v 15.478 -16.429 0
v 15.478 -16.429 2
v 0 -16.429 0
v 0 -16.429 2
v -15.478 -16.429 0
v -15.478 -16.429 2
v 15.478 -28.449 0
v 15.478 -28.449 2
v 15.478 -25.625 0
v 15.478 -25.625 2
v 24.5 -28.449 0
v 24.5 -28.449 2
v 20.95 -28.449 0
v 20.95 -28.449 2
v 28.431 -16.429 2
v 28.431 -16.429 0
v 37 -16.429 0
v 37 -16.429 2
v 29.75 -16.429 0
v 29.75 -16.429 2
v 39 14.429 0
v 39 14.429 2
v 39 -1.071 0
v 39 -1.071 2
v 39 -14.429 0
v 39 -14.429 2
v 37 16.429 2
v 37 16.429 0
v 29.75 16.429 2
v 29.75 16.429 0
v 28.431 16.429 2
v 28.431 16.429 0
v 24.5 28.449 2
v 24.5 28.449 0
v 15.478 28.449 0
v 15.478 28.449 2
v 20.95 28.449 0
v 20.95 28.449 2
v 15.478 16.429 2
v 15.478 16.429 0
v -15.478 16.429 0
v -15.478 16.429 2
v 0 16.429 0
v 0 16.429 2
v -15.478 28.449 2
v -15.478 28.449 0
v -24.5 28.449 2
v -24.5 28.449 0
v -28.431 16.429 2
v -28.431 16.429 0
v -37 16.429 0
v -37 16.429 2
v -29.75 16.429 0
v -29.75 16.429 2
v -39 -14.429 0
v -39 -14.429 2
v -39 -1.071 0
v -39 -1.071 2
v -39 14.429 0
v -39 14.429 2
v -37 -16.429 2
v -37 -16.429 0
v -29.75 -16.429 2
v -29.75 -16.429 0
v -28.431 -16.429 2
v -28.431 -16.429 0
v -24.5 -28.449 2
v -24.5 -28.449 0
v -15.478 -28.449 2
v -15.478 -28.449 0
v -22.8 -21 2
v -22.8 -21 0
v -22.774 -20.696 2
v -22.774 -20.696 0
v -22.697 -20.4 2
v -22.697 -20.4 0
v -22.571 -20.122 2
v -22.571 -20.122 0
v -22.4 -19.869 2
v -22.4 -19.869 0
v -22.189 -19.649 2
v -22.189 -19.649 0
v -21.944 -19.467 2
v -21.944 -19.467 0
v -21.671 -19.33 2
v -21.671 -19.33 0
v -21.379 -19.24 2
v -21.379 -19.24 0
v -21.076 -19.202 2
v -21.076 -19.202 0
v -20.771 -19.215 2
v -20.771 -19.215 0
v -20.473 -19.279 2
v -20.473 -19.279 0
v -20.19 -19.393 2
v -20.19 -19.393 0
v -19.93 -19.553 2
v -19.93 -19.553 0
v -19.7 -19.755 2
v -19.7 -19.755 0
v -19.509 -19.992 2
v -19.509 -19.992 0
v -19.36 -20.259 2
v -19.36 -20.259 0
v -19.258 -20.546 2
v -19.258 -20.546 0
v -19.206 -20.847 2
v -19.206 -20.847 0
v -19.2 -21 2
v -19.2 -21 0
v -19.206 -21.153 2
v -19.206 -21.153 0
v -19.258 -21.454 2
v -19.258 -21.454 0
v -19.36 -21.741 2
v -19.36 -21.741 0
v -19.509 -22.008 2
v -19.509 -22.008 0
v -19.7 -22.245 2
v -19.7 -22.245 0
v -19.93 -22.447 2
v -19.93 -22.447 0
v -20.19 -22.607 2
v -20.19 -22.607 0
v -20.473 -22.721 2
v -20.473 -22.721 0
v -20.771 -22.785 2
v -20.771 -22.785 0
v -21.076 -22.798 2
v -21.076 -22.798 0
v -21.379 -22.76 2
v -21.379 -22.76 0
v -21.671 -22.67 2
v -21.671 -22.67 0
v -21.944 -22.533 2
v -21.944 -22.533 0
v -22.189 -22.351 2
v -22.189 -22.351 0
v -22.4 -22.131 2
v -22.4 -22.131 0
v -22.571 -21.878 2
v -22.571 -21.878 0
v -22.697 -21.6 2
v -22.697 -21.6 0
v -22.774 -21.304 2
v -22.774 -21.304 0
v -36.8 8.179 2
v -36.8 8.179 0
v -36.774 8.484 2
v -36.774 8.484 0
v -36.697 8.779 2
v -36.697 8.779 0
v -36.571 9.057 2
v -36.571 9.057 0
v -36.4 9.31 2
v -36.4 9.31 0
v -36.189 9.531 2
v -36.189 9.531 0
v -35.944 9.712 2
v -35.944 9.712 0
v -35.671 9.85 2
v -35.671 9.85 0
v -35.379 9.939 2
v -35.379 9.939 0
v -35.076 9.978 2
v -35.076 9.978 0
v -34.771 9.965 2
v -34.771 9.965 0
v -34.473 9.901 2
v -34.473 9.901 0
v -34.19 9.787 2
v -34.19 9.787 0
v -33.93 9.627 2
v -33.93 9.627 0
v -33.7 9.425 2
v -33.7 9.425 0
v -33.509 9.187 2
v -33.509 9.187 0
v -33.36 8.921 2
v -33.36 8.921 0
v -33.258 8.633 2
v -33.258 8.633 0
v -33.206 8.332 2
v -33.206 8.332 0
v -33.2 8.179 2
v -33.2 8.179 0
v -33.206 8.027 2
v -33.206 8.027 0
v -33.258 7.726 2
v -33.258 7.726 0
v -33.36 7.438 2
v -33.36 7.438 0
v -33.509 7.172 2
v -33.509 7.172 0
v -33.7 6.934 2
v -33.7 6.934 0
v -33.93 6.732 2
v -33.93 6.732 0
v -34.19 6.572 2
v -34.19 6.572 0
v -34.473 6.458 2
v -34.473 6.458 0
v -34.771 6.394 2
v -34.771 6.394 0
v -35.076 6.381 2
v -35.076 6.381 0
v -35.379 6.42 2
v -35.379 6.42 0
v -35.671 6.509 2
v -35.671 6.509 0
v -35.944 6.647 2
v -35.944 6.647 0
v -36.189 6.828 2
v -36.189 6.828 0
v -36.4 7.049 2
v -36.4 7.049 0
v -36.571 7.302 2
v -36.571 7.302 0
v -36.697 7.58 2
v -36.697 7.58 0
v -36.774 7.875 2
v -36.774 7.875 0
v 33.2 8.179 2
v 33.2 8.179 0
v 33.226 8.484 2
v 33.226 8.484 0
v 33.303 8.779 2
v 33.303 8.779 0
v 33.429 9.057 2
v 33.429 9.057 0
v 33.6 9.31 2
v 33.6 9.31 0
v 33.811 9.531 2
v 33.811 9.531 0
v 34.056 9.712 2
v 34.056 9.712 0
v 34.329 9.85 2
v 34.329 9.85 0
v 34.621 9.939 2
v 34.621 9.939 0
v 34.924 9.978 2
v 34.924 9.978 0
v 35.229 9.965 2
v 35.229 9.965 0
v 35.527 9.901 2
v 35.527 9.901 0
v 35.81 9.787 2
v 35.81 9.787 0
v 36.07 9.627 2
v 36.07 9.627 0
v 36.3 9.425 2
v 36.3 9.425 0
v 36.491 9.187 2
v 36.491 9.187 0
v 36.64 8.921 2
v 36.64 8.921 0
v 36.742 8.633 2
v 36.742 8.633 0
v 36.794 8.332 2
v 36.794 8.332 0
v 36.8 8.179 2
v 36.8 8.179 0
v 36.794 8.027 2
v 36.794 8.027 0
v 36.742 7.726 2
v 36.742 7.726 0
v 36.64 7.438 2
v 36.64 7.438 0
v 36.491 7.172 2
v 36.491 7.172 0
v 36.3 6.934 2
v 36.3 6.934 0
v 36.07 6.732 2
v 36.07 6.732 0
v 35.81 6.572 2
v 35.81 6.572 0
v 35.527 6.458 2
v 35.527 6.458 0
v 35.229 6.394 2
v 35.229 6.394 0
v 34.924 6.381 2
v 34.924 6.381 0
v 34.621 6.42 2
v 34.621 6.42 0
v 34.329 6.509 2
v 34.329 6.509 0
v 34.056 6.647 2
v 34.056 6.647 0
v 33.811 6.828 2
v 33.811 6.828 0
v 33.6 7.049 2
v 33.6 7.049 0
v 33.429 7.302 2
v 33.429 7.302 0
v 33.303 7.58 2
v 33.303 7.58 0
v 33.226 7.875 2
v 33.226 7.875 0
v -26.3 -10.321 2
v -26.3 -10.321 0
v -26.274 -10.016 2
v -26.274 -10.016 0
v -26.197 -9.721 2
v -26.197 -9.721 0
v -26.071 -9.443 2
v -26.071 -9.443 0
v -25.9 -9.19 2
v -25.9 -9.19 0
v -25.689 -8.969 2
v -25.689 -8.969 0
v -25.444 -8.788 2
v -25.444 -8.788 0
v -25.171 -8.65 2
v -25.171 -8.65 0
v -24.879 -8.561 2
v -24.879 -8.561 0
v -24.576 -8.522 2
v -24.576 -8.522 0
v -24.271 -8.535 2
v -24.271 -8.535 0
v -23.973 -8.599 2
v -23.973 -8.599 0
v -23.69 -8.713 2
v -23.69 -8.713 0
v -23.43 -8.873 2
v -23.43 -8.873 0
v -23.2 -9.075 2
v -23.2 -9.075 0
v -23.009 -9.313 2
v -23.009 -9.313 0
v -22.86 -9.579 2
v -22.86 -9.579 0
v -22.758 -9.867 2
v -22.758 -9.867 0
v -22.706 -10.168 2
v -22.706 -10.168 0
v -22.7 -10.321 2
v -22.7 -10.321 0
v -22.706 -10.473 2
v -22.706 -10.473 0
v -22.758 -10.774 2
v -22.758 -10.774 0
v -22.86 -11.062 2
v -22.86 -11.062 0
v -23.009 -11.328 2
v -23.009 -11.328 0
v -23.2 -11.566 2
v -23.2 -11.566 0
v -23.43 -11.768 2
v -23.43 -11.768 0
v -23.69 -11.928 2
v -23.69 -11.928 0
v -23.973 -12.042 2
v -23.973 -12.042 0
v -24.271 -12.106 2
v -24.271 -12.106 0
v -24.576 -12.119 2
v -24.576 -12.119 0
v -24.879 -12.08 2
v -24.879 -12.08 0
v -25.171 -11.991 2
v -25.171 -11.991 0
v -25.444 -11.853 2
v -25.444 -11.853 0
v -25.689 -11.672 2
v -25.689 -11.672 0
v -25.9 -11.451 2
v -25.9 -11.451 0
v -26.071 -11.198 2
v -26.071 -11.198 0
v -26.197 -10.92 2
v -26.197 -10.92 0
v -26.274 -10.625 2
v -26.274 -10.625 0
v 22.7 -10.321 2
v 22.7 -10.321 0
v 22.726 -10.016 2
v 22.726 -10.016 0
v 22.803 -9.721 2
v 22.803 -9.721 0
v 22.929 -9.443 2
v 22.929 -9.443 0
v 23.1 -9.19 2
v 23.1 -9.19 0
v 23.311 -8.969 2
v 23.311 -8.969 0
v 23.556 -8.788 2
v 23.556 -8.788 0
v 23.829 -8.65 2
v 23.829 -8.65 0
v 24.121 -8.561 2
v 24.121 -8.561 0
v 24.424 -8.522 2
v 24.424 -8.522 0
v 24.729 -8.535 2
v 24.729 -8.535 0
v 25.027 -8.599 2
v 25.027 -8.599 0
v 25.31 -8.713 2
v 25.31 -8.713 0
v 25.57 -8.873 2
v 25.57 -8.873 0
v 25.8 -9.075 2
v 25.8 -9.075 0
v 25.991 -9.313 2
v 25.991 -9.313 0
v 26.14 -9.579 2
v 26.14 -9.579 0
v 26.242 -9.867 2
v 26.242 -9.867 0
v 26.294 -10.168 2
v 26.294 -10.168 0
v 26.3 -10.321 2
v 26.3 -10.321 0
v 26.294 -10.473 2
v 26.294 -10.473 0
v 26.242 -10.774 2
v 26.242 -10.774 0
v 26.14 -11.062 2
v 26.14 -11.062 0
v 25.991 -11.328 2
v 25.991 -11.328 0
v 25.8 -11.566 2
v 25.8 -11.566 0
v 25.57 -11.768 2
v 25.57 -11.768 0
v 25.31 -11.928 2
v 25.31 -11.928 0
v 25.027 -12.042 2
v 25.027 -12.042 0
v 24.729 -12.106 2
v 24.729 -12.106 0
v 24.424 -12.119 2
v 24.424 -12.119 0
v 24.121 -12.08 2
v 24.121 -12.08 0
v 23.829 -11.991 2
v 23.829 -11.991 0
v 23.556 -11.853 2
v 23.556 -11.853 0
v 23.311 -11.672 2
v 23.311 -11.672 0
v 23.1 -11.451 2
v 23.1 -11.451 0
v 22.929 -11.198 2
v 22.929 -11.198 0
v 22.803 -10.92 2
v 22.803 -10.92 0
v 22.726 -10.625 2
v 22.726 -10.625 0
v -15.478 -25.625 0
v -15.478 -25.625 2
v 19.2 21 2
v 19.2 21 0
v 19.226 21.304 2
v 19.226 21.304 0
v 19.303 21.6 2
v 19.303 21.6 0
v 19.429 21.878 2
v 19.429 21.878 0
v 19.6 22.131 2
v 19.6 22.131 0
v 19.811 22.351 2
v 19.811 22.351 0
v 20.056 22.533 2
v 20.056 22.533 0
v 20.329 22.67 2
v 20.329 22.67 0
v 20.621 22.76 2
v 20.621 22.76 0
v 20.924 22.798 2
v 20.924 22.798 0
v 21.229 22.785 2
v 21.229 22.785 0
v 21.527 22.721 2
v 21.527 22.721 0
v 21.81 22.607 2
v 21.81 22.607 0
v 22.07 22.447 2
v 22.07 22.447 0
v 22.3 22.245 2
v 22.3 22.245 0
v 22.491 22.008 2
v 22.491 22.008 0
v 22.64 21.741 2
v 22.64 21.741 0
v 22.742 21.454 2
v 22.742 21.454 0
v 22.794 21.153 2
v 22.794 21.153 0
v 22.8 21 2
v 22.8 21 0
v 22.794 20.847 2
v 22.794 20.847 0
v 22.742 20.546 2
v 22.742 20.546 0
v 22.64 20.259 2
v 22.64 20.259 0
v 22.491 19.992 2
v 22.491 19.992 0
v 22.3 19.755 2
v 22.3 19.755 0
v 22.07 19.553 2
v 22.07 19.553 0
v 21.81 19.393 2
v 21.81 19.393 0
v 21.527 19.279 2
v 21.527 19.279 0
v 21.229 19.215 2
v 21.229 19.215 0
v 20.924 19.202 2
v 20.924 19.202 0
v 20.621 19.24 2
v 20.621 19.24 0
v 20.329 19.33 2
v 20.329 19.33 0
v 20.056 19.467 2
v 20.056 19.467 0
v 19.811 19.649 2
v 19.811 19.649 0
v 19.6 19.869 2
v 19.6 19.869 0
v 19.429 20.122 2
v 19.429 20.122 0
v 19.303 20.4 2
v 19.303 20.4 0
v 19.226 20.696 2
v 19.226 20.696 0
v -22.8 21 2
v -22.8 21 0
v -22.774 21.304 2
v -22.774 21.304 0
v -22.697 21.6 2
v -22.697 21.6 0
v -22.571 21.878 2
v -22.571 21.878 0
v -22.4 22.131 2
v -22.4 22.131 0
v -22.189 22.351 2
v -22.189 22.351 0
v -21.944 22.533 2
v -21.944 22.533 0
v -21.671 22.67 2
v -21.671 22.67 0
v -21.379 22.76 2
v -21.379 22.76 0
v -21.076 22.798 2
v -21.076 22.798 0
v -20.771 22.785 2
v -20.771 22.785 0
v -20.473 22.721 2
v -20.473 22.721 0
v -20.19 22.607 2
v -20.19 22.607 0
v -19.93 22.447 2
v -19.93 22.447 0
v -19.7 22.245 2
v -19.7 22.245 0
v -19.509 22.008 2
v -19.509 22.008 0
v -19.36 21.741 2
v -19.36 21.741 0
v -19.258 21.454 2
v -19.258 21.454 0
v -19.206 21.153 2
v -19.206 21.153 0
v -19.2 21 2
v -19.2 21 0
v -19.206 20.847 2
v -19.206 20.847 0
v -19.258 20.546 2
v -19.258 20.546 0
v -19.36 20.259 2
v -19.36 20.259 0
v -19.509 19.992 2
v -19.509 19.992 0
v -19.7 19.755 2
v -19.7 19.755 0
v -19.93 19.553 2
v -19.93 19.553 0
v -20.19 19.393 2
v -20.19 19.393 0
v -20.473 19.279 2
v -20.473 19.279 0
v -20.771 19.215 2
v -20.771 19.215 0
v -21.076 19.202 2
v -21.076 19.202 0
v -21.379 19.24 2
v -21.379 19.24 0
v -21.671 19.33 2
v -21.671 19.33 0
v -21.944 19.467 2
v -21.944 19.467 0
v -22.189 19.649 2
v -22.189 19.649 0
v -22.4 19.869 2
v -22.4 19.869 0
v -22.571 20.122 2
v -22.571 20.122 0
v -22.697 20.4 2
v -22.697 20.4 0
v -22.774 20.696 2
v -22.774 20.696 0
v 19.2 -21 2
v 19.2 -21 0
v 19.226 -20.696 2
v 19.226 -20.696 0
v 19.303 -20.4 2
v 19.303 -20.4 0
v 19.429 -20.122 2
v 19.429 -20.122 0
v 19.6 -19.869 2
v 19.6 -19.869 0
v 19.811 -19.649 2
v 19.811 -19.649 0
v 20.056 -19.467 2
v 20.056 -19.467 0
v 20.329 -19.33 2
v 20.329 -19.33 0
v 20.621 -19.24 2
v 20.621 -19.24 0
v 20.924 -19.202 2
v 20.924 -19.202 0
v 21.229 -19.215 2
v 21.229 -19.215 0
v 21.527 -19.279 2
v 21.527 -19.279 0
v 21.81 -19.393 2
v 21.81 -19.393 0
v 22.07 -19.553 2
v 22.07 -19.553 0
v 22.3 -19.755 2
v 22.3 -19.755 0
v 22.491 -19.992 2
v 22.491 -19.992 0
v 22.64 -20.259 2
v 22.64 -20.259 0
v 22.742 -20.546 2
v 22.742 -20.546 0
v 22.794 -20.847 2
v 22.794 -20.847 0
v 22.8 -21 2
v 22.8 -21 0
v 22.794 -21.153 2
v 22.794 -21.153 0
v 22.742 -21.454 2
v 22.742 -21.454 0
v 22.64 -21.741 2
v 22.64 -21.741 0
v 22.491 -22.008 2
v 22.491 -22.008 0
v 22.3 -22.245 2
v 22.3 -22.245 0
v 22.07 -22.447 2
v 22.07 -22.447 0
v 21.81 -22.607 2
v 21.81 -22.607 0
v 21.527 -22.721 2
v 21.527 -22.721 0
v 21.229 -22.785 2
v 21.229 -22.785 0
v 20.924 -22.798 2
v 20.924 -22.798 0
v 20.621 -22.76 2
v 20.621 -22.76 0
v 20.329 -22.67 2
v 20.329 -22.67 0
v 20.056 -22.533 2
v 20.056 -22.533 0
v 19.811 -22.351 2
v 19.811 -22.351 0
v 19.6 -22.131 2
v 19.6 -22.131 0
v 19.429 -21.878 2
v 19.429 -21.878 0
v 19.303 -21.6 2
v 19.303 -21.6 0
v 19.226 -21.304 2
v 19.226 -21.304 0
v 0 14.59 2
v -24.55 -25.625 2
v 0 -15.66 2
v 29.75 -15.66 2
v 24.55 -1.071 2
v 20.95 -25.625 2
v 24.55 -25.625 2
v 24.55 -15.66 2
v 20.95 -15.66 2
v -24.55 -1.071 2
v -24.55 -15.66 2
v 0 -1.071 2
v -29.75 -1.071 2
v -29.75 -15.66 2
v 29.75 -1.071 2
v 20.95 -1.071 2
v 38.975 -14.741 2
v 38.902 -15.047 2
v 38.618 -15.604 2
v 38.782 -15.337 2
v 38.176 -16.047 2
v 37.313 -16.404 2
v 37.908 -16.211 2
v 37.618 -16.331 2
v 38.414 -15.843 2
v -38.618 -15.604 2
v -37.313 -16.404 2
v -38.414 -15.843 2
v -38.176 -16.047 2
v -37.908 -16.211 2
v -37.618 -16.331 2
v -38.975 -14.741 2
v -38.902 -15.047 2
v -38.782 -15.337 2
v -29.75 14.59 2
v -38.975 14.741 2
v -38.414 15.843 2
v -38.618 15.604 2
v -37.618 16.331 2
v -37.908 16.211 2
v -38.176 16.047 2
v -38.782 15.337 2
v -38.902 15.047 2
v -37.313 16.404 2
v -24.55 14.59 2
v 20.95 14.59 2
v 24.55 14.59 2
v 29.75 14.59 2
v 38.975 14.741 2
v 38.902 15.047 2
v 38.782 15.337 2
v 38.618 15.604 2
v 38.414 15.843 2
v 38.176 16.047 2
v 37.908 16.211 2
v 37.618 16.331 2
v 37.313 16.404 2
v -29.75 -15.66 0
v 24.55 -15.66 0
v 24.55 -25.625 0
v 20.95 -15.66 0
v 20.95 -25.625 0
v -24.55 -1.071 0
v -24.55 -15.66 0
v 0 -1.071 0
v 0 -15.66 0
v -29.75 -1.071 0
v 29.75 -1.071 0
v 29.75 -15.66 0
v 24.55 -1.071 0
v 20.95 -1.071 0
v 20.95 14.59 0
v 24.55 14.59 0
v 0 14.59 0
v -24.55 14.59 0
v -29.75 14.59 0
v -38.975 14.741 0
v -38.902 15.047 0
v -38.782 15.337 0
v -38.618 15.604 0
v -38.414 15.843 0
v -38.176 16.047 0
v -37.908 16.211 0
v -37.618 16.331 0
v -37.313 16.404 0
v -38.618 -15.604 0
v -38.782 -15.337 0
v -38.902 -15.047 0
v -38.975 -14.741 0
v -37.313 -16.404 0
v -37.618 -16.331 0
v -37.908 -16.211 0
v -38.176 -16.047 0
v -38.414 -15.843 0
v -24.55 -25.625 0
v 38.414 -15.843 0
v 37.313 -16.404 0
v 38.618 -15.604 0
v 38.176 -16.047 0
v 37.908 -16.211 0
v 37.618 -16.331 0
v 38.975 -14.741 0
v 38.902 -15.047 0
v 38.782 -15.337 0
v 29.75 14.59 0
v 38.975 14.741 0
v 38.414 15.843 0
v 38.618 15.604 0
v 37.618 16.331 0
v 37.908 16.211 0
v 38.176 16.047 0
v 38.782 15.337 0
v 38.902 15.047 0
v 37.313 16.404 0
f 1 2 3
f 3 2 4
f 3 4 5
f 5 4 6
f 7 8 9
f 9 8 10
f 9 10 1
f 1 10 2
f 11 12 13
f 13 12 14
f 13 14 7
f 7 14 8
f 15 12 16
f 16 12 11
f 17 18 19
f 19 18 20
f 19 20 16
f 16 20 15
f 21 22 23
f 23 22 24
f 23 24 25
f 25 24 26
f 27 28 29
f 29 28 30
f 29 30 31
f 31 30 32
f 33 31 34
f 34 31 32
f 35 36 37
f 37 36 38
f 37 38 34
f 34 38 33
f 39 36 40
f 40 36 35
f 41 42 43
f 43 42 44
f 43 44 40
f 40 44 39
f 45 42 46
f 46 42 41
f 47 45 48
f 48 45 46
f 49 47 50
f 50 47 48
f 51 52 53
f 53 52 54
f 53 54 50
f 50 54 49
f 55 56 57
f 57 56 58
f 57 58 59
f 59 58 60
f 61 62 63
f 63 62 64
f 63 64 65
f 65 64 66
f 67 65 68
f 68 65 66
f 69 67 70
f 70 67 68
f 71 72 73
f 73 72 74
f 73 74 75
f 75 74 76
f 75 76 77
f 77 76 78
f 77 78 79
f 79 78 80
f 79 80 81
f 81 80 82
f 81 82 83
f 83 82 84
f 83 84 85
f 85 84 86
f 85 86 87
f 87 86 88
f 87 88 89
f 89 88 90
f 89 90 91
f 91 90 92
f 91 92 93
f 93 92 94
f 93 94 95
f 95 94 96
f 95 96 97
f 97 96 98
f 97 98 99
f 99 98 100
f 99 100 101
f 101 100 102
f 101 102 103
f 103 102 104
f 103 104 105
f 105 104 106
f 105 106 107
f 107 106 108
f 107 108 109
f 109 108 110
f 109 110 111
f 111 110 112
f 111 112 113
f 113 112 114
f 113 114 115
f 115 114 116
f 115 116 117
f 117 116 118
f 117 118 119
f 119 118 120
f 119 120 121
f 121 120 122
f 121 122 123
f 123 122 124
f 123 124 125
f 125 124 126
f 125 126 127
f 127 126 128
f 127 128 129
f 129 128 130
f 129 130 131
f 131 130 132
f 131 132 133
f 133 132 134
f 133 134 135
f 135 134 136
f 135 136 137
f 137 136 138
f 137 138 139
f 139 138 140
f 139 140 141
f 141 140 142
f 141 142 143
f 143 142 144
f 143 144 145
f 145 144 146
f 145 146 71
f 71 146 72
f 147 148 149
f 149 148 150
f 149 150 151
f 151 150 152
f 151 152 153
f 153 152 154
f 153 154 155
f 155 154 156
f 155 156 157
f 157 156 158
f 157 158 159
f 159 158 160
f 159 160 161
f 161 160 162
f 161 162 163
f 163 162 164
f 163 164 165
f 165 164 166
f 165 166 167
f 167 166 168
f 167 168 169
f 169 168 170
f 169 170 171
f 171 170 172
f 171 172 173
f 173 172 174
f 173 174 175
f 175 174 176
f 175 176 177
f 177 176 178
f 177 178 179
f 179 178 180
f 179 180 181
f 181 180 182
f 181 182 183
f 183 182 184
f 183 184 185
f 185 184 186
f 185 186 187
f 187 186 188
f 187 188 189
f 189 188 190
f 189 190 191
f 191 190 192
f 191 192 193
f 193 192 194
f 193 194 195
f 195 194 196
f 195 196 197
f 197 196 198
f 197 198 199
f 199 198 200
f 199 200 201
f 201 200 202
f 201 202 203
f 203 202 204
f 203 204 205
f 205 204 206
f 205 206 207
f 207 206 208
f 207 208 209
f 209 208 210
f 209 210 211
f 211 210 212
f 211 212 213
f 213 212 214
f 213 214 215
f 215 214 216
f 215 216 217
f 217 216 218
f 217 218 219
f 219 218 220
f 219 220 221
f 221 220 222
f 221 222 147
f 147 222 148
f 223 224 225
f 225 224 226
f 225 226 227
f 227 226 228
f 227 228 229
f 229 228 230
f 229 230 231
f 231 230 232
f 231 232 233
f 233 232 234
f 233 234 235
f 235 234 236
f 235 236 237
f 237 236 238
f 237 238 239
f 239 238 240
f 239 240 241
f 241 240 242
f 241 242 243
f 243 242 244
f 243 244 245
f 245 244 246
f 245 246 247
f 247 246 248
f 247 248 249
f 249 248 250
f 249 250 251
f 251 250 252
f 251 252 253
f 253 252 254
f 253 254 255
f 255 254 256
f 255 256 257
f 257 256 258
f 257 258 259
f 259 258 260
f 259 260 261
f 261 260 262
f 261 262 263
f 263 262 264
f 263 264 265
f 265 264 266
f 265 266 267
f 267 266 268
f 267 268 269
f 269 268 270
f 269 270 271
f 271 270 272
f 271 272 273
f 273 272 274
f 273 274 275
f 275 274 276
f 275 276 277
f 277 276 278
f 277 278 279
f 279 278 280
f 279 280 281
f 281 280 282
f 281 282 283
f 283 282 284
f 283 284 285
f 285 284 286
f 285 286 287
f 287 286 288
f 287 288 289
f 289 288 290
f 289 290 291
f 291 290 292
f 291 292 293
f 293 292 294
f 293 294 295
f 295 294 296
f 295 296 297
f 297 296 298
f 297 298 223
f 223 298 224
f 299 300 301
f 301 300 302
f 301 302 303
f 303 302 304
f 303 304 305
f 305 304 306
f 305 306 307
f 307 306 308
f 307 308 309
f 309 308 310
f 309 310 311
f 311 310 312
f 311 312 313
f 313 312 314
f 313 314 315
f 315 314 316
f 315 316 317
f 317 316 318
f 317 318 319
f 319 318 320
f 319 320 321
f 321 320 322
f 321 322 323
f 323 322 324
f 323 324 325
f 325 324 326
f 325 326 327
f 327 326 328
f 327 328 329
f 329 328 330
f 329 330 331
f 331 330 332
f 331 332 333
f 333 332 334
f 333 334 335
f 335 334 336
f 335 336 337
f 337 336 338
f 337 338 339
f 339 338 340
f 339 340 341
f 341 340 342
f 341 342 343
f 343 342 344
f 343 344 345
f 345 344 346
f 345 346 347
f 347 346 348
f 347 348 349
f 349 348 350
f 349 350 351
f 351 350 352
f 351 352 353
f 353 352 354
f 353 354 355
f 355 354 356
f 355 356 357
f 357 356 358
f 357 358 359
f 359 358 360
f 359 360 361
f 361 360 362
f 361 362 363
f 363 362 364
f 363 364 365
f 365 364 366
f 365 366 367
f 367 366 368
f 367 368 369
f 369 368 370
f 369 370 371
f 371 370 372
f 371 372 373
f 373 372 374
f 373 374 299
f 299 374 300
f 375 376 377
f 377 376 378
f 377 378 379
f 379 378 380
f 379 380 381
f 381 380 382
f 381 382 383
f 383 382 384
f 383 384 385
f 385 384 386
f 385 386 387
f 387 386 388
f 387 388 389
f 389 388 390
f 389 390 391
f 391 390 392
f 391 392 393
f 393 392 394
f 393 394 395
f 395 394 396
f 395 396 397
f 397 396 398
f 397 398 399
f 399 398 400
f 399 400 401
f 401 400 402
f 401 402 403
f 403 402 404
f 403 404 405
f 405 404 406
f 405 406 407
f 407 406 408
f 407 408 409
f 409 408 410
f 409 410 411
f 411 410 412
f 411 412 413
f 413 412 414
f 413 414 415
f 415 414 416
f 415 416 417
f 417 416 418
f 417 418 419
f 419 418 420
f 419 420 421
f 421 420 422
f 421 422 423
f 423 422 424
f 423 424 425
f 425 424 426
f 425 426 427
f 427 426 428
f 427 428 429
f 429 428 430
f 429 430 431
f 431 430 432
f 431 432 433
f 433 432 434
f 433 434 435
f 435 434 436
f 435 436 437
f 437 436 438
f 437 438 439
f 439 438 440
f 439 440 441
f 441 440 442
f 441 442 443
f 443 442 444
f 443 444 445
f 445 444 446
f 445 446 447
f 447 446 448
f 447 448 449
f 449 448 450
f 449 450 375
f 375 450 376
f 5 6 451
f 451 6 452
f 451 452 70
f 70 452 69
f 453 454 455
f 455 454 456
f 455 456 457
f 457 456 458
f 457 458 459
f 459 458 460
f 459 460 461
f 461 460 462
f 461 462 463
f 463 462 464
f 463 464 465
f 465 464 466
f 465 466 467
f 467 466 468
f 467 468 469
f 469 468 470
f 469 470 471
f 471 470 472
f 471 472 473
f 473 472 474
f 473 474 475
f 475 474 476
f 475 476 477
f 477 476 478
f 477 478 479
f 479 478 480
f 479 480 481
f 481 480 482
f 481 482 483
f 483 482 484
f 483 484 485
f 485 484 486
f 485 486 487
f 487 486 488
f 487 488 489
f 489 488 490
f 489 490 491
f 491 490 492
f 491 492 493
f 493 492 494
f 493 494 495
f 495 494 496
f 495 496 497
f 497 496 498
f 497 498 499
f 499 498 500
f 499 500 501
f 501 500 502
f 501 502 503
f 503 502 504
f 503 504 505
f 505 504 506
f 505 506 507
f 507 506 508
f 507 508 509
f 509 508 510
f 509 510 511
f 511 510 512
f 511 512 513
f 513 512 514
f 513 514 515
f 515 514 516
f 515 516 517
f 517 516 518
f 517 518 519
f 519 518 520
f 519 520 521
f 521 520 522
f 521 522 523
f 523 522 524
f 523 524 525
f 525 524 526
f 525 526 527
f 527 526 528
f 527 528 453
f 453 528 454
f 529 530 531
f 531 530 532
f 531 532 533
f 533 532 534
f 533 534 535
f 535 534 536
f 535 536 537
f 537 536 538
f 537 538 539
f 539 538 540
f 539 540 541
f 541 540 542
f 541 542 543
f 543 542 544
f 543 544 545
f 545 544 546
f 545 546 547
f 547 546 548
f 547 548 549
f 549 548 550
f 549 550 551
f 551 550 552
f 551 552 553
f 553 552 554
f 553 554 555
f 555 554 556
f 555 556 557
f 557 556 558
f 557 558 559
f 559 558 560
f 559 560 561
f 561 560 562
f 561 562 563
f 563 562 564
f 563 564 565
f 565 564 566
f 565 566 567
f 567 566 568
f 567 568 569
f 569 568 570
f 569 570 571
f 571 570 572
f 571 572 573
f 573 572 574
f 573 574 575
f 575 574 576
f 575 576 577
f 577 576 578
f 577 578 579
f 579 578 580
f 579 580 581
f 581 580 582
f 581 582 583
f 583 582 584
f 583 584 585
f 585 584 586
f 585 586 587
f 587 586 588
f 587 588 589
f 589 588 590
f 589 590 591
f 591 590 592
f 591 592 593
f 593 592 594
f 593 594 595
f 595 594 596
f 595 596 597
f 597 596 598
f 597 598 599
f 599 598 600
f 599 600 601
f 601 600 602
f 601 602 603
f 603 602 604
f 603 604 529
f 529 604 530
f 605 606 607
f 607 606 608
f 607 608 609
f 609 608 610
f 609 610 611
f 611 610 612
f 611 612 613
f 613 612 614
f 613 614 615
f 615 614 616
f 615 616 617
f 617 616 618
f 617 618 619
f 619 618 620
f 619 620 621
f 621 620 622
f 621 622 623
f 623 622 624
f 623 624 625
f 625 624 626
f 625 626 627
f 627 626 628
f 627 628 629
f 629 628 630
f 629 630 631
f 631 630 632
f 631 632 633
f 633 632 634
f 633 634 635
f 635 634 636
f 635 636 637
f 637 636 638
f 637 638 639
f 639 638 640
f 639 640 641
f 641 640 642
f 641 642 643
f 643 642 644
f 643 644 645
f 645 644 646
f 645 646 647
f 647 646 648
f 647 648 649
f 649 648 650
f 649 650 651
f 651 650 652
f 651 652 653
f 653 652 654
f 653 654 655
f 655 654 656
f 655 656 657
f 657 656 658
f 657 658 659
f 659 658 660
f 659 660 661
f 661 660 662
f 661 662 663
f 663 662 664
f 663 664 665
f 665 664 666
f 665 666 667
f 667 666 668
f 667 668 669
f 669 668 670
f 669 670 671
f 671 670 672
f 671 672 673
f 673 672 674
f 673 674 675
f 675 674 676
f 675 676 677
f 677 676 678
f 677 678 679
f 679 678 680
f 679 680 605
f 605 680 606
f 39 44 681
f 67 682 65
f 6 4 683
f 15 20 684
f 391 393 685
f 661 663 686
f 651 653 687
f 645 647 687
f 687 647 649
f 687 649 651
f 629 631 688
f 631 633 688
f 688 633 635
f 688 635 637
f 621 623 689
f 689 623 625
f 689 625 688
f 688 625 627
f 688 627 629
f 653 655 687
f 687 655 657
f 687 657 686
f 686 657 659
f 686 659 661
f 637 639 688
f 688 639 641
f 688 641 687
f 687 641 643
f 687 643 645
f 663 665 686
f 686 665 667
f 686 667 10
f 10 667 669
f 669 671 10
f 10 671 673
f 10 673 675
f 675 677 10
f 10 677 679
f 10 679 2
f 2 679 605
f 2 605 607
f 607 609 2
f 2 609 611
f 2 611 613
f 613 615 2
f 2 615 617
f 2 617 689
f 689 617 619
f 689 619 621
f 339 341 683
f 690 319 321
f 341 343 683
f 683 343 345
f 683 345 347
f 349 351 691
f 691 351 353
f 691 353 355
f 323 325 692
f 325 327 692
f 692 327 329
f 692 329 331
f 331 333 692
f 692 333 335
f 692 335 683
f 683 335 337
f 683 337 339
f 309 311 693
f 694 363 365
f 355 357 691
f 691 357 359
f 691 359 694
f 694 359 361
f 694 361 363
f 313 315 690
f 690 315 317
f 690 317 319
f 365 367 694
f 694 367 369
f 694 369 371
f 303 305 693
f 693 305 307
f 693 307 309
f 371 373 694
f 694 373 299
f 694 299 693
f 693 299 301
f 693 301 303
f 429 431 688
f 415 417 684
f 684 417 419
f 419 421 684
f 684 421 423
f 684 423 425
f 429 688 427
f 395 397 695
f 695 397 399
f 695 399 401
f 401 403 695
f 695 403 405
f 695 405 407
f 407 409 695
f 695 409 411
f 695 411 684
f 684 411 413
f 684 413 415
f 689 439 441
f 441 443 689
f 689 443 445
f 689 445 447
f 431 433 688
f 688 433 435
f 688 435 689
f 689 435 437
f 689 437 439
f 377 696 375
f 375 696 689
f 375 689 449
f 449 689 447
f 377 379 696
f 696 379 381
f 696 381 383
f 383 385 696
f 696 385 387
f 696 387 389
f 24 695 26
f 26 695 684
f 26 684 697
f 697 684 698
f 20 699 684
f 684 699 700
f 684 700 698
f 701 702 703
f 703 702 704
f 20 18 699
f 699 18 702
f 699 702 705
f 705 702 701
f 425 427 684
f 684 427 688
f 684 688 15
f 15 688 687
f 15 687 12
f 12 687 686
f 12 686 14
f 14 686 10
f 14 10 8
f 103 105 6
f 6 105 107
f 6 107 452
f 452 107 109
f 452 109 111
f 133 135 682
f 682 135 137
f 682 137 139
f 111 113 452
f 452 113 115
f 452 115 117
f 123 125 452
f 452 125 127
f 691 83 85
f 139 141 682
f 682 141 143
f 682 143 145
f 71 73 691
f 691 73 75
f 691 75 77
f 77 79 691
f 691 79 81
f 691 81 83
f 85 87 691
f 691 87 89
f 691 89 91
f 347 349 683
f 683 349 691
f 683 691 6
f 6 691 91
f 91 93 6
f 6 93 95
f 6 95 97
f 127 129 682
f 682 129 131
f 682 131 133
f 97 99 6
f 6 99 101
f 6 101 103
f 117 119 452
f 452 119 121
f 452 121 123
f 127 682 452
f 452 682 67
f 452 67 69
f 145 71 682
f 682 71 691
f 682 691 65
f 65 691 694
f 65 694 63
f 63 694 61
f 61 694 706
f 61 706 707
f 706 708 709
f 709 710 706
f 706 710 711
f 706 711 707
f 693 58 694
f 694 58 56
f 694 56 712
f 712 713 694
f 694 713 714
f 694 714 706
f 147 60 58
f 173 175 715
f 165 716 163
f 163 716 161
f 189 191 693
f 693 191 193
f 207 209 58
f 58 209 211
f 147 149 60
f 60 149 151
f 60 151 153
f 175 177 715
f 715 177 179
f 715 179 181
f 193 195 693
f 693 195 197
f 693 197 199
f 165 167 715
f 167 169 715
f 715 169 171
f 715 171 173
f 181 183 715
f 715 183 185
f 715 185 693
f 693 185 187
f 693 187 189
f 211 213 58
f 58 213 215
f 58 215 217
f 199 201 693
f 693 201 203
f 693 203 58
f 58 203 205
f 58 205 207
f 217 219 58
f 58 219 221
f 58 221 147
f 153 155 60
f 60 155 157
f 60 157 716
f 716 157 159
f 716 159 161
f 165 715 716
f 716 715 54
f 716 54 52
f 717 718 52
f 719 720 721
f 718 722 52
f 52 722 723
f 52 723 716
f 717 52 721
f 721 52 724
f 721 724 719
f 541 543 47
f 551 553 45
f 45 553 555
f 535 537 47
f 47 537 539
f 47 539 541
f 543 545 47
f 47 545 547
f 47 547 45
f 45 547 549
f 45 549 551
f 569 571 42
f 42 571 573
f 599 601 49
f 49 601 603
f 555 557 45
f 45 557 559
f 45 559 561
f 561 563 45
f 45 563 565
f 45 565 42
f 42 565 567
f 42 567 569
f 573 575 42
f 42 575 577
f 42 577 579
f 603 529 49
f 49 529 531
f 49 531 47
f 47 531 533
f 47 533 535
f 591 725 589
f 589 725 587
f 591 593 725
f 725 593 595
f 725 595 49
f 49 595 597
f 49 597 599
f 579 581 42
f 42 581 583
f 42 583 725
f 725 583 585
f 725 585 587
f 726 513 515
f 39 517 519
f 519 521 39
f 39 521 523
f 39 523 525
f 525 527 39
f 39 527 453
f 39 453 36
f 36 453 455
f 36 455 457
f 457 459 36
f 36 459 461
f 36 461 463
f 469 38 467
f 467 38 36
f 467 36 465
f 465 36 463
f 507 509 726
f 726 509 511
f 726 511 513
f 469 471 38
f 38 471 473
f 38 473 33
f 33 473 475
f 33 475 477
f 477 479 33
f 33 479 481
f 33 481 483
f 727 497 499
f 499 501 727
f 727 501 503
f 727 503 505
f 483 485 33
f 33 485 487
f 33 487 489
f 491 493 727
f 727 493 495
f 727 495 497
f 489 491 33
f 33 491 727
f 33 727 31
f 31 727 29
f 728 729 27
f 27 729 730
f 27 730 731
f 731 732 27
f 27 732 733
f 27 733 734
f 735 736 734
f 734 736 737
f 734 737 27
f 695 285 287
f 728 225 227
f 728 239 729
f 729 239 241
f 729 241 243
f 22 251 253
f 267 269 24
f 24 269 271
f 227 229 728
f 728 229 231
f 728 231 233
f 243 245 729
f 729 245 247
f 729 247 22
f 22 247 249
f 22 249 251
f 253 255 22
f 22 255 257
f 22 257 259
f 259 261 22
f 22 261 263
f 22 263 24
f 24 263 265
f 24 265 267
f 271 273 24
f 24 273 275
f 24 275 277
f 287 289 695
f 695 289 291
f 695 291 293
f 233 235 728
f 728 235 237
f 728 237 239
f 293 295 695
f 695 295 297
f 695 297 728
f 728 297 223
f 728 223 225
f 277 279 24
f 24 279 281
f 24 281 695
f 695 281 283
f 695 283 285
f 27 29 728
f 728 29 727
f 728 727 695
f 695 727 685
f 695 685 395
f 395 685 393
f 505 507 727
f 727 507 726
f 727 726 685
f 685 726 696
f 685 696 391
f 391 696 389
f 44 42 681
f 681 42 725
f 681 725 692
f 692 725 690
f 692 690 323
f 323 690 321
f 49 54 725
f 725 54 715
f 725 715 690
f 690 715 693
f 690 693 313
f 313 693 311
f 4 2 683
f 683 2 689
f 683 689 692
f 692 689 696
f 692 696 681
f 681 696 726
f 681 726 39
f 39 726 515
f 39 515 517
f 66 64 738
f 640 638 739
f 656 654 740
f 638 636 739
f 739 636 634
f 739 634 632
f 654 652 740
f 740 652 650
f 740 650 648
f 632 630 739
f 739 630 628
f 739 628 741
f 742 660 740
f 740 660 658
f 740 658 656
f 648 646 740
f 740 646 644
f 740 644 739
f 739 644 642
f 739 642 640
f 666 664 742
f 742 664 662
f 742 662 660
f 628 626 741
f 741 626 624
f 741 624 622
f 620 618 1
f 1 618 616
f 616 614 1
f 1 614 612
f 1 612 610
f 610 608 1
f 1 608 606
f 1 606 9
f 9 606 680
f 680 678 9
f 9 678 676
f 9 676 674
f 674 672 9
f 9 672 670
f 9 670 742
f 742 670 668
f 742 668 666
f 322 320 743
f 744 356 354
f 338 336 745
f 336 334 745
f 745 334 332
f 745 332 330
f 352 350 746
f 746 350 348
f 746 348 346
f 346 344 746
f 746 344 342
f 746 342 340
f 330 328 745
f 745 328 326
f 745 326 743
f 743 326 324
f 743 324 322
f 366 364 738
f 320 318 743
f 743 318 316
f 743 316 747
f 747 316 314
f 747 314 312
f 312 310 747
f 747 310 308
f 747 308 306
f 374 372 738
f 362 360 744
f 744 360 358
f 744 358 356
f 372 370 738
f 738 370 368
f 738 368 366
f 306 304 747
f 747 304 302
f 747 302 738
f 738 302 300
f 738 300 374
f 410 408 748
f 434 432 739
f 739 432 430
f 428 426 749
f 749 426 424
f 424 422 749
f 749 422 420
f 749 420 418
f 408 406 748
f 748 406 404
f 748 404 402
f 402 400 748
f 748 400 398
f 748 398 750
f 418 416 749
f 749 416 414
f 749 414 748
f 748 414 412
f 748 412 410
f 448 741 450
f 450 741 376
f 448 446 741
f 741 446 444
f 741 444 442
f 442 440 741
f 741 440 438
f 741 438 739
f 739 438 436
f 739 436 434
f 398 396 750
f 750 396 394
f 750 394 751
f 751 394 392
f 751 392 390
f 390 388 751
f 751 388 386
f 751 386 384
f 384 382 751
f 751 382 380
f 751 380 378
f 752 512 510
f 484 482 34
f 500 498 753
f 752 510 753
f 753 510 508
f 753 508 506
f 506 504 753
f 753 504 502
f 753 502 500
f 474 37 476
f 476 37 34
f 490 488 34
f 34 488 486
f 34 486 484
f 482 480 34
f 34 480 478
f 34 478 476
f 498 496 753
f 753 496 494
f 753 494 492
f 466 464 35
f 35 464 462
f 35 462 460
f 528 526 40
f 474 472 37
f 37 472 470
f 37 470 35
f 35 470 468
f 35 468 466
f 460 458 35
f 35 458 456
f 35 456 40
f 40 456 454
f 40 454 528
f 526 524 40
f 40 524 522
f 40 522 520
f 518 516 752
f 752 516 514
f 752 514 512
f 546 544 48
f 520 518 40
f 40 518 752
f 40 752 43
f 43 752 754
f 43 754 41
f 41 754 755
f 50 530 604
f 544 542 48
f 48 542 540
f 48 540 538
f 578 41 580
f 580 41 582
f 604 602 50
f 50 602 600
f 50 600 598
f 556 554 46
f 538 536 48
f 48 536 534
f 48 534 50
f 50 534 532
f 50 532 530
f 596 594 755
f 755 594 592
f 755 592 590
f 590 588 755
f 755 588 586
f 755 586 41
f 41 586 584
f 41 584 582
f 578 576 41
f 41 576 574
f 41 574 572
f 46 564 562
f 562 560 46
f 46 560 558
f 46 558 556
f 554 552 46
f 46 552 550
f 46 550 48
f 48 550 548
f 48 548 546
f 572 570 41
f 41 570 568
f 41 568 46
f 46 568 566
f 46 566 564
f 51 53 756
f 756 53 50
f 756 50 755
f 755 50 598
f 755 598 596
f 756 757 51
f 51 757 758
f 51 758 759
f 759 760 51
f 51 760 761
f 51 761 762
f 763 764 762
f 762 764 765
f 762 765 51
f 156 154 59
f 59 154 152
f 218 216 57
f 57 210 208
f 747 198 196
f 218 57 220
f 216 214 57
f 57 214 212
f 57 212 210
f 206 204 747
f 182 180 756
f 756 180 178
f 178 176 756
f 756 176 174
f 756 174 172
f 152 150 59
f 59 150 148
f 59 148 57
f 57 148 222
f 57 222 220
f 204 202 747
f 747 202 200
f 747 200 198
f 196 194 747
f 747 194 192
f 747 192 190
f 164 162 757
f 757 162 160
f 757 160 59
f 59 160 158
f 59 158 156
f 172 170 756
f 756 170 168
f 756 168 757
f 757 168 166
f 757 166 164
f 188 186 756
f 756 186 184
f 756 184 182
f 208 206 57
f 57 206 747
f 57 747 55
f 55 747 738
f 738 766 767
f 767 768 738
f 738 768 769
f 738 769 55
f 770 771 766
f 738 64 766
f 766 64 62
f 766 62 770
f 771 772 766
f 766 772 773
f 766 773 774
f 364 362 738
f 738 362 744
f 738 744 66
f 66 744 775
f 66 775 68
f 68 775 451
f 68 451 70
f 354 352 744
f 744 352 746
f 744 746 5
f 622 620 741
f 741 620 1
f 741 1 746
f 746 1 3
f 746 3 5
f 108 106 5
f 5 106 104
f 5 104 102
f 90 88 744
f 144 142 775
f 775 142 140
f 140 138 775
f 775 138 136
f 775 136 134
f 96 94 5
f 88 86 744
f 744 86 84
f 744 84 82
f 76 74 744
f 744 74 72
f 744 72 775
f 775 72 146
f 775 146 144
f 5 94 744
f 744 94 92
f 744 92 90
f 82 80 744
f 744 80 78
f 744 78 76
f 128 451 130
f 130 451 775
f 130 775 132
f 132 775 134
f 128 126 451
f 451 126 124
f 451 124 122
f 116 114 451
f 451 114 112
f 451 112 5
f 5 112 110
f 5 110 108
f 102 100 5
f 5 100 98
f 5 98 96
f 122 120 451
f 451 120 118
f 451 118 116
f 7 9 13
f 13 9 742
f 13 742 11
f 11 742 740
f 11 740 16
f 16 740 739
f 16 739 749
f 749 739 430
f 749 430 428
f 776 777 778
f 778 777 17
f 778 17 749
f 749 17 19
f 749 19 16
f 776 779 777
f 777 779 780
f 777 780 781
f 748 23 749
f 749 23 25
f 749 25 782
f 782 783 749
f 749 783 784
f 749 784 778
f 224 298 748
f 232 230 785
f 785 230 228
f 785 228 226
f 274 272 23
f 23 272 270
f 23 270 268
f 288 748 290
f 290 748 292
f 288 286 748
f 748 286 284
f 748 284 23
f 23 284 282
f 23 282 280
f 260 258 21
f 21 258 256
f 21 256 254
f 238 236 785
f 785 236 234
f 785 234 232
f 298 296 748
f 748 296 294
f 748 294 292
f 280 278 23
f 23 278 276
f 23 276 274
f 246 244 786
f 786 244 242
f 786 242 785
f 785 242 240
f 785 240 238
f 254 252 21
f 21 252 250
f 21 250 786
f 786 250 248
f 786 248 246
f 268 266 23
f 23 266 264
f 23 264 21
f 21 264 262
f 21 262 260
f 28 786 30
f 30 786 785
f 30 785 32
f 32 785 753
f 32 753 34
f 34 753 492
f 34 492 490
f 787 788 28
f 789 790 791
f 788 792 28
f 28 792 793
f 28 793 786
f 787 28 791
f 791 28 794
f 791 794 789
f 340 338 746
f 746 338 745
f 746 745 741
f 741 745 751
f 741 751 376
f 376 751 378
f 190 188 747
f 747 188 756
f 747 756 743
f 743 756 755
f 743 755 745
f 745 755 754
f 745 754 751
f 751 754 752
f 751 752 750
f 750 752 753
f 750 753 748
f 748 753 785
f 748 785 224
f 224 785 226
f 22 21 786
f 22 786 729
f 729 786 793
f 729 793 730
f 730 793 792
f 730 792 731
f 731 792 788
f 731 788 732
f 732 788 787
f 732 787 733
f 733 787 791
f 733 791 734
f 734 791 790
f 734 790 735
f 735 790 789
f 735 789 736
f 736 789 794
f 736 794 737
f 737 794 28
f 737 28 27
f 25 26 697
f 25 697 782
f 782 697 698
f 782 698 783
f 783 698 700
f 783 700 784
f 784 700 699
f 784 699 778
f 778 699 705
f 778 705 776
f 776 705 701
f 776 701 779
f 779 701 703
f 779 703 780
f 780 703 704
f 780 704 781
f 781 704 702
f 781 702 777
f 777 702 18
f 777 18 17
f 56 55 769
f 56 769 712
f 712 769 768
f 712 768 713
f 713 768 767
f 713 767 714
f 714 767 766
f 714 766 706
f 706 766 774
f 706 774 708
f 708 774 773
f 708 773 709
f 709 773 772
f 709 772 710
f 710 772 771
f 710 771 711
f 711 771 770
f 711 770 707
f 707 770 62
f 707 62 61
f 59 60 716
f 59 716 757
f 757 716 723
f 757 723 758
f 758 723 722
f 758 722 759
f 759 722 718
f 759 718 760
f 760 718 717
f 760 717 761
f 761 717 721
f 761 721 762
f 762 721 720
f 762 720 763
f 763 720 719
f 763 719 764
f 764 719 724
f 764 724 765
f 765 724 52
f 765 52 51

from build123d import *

# Parameters (mm, degrees)
SKETCH_1_R      = 1.8
EXTRUDE_1_DEPTH = 2
FILLET_1_R      = 2


with BuildPart() as part:
    # 草图1 → 凸台-拉伸1 (new body)
    with BuildSketch(Plane.XY):
        Polygon((15.478457886, -16.428571429), (-15.478457886, -16.428571429), (-15.478457886, -28.449015282), (-24.5, -28.449015282), (-28.430563732, -16.428571429), (-39, -16.428571429), (-39, 16.428571429), (-28.430563732, 16.428571429), (-24.5, 28.449015282), (-15.478457886, 28.449015282), (-15.478457886, 16.428571429), (15.478457886, 16.428571429), (15.478457886, 28.449015282), (24.5, 28.449015282), (28.430563732, 16.428571429), (39, 16.428571429), (39, -16.428571429), (28.430563732, -16.428571429), (24.5, -28.449015282), (15.478457886, -28.449015282), align=None)
        with Locations((-21, 21)):
            Circle(SKETCH_1_R, mode=Mode.SUBTRACT)
        with Locations((21, 21)):
            Circle(SKETCH_1_R, mode=Mode.SUBTRACT)
        with Locations((24.5, -10.320512821)):
            Circle(SKETCH_1_R, mode=Mode.SUBTRACT)
        with Locations((-24.5, -10.320512821)):
            Circle(SKETCH_1_R, mode=Mode.SUBTRACT)
        with Locations((35, 8.179487179)):
            Circle(SKETCH_1_R, mode=Mode.SUBTRACT)
        with Locations((-35, 8.179487179)):
            Circle(SKETCH_1_R, mode=Mode.SUBTRACT)
        with Locations((-21, -21)):
            Circle(SKETCH_1_R, mode=Mode.SUBTRACT)
        with Locations((21, -21)):
            Circle(SKETCH_1_R, mode=Mode.SUBTRACT)
    extrude(amount=EXTRUDE_1_DEPTH)

    # 圆角1
    fillet_1_edges = [part.edges().sort_by_distance(p)[0] for p in [
        (-39, -16.428571429, 1),
        (-39, 16.428571429, 1),
        (39, 16.428571429, 1),
        (39, -16.428571429, 1),
    ]]
    fillet(fillet_1_edges, radius=FILLET_1_R)


solid = part.part
